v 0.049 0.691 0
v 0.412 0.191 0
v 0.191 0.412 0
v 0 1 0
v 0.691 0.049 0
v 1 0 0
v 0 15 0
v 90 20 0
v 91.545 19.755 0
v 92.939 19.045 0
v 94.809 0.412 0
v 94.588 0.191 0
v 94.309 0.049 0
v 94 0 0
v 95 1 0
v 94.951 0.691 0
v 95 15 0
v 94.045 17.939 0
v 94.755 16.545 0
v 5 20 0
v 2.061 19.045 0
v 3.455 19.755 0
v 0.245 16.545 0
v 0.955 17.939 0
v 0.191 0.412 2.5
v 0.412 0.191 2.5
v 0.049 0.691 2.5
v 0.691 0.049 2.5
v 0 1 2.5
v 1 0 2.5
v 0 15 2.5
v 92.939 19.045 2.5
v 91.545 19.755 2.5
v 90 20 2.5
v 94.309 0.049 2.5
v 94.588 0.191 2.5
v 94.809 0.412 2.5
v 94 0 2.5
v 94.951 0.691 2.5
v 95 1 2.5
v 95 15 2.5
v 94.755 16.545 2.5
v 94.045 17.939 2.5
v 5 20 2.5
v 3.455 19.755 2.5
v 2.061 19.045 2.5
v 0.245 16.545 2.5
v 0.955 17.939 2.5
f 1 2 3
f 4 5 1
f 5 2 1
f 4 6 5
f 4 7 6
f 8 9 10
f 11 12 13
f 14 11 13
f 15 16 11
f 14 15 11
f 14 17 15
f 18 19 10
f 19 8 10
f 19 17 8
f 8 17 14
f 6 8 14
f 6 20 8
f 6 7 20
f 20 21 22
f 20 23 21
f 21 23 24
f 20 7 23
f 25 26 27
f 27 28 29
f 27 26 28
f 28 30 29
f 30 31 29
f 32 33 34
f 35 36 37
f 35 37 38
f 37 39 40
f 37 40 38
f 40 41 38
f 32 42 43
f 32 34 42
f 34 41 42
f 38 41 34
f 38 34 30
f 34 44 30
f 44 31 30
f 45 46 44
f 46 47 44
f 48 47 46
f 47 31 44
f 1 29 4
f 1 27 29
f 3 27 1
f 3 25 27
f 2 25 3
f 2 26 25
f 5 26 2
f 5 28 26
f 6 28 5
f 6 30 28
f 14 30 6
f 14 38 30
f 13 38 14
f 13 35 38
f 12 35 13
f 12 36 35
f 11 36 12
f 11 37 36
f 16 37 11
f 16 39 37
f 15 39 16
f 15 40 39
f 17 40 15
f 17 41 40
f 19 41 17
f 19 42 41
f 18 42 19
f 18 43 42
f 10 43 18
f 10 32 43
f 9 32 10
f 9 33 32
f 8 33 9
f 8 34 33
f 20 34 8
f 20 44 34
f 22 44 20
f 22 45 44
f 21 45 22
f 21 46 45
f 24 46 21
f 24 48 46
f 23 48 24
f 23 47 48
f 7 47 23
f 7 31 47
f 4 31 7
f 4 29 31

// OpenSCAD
linear_extrude(2.5)
{
$fn=20;
hull(){
 translate([5,20-5])circle(5);  
 translate([95-5,20-5])circle(5);  

 translate([1,1])circle(1);  
 translate([95-1,1])circle(1);  
}

}
